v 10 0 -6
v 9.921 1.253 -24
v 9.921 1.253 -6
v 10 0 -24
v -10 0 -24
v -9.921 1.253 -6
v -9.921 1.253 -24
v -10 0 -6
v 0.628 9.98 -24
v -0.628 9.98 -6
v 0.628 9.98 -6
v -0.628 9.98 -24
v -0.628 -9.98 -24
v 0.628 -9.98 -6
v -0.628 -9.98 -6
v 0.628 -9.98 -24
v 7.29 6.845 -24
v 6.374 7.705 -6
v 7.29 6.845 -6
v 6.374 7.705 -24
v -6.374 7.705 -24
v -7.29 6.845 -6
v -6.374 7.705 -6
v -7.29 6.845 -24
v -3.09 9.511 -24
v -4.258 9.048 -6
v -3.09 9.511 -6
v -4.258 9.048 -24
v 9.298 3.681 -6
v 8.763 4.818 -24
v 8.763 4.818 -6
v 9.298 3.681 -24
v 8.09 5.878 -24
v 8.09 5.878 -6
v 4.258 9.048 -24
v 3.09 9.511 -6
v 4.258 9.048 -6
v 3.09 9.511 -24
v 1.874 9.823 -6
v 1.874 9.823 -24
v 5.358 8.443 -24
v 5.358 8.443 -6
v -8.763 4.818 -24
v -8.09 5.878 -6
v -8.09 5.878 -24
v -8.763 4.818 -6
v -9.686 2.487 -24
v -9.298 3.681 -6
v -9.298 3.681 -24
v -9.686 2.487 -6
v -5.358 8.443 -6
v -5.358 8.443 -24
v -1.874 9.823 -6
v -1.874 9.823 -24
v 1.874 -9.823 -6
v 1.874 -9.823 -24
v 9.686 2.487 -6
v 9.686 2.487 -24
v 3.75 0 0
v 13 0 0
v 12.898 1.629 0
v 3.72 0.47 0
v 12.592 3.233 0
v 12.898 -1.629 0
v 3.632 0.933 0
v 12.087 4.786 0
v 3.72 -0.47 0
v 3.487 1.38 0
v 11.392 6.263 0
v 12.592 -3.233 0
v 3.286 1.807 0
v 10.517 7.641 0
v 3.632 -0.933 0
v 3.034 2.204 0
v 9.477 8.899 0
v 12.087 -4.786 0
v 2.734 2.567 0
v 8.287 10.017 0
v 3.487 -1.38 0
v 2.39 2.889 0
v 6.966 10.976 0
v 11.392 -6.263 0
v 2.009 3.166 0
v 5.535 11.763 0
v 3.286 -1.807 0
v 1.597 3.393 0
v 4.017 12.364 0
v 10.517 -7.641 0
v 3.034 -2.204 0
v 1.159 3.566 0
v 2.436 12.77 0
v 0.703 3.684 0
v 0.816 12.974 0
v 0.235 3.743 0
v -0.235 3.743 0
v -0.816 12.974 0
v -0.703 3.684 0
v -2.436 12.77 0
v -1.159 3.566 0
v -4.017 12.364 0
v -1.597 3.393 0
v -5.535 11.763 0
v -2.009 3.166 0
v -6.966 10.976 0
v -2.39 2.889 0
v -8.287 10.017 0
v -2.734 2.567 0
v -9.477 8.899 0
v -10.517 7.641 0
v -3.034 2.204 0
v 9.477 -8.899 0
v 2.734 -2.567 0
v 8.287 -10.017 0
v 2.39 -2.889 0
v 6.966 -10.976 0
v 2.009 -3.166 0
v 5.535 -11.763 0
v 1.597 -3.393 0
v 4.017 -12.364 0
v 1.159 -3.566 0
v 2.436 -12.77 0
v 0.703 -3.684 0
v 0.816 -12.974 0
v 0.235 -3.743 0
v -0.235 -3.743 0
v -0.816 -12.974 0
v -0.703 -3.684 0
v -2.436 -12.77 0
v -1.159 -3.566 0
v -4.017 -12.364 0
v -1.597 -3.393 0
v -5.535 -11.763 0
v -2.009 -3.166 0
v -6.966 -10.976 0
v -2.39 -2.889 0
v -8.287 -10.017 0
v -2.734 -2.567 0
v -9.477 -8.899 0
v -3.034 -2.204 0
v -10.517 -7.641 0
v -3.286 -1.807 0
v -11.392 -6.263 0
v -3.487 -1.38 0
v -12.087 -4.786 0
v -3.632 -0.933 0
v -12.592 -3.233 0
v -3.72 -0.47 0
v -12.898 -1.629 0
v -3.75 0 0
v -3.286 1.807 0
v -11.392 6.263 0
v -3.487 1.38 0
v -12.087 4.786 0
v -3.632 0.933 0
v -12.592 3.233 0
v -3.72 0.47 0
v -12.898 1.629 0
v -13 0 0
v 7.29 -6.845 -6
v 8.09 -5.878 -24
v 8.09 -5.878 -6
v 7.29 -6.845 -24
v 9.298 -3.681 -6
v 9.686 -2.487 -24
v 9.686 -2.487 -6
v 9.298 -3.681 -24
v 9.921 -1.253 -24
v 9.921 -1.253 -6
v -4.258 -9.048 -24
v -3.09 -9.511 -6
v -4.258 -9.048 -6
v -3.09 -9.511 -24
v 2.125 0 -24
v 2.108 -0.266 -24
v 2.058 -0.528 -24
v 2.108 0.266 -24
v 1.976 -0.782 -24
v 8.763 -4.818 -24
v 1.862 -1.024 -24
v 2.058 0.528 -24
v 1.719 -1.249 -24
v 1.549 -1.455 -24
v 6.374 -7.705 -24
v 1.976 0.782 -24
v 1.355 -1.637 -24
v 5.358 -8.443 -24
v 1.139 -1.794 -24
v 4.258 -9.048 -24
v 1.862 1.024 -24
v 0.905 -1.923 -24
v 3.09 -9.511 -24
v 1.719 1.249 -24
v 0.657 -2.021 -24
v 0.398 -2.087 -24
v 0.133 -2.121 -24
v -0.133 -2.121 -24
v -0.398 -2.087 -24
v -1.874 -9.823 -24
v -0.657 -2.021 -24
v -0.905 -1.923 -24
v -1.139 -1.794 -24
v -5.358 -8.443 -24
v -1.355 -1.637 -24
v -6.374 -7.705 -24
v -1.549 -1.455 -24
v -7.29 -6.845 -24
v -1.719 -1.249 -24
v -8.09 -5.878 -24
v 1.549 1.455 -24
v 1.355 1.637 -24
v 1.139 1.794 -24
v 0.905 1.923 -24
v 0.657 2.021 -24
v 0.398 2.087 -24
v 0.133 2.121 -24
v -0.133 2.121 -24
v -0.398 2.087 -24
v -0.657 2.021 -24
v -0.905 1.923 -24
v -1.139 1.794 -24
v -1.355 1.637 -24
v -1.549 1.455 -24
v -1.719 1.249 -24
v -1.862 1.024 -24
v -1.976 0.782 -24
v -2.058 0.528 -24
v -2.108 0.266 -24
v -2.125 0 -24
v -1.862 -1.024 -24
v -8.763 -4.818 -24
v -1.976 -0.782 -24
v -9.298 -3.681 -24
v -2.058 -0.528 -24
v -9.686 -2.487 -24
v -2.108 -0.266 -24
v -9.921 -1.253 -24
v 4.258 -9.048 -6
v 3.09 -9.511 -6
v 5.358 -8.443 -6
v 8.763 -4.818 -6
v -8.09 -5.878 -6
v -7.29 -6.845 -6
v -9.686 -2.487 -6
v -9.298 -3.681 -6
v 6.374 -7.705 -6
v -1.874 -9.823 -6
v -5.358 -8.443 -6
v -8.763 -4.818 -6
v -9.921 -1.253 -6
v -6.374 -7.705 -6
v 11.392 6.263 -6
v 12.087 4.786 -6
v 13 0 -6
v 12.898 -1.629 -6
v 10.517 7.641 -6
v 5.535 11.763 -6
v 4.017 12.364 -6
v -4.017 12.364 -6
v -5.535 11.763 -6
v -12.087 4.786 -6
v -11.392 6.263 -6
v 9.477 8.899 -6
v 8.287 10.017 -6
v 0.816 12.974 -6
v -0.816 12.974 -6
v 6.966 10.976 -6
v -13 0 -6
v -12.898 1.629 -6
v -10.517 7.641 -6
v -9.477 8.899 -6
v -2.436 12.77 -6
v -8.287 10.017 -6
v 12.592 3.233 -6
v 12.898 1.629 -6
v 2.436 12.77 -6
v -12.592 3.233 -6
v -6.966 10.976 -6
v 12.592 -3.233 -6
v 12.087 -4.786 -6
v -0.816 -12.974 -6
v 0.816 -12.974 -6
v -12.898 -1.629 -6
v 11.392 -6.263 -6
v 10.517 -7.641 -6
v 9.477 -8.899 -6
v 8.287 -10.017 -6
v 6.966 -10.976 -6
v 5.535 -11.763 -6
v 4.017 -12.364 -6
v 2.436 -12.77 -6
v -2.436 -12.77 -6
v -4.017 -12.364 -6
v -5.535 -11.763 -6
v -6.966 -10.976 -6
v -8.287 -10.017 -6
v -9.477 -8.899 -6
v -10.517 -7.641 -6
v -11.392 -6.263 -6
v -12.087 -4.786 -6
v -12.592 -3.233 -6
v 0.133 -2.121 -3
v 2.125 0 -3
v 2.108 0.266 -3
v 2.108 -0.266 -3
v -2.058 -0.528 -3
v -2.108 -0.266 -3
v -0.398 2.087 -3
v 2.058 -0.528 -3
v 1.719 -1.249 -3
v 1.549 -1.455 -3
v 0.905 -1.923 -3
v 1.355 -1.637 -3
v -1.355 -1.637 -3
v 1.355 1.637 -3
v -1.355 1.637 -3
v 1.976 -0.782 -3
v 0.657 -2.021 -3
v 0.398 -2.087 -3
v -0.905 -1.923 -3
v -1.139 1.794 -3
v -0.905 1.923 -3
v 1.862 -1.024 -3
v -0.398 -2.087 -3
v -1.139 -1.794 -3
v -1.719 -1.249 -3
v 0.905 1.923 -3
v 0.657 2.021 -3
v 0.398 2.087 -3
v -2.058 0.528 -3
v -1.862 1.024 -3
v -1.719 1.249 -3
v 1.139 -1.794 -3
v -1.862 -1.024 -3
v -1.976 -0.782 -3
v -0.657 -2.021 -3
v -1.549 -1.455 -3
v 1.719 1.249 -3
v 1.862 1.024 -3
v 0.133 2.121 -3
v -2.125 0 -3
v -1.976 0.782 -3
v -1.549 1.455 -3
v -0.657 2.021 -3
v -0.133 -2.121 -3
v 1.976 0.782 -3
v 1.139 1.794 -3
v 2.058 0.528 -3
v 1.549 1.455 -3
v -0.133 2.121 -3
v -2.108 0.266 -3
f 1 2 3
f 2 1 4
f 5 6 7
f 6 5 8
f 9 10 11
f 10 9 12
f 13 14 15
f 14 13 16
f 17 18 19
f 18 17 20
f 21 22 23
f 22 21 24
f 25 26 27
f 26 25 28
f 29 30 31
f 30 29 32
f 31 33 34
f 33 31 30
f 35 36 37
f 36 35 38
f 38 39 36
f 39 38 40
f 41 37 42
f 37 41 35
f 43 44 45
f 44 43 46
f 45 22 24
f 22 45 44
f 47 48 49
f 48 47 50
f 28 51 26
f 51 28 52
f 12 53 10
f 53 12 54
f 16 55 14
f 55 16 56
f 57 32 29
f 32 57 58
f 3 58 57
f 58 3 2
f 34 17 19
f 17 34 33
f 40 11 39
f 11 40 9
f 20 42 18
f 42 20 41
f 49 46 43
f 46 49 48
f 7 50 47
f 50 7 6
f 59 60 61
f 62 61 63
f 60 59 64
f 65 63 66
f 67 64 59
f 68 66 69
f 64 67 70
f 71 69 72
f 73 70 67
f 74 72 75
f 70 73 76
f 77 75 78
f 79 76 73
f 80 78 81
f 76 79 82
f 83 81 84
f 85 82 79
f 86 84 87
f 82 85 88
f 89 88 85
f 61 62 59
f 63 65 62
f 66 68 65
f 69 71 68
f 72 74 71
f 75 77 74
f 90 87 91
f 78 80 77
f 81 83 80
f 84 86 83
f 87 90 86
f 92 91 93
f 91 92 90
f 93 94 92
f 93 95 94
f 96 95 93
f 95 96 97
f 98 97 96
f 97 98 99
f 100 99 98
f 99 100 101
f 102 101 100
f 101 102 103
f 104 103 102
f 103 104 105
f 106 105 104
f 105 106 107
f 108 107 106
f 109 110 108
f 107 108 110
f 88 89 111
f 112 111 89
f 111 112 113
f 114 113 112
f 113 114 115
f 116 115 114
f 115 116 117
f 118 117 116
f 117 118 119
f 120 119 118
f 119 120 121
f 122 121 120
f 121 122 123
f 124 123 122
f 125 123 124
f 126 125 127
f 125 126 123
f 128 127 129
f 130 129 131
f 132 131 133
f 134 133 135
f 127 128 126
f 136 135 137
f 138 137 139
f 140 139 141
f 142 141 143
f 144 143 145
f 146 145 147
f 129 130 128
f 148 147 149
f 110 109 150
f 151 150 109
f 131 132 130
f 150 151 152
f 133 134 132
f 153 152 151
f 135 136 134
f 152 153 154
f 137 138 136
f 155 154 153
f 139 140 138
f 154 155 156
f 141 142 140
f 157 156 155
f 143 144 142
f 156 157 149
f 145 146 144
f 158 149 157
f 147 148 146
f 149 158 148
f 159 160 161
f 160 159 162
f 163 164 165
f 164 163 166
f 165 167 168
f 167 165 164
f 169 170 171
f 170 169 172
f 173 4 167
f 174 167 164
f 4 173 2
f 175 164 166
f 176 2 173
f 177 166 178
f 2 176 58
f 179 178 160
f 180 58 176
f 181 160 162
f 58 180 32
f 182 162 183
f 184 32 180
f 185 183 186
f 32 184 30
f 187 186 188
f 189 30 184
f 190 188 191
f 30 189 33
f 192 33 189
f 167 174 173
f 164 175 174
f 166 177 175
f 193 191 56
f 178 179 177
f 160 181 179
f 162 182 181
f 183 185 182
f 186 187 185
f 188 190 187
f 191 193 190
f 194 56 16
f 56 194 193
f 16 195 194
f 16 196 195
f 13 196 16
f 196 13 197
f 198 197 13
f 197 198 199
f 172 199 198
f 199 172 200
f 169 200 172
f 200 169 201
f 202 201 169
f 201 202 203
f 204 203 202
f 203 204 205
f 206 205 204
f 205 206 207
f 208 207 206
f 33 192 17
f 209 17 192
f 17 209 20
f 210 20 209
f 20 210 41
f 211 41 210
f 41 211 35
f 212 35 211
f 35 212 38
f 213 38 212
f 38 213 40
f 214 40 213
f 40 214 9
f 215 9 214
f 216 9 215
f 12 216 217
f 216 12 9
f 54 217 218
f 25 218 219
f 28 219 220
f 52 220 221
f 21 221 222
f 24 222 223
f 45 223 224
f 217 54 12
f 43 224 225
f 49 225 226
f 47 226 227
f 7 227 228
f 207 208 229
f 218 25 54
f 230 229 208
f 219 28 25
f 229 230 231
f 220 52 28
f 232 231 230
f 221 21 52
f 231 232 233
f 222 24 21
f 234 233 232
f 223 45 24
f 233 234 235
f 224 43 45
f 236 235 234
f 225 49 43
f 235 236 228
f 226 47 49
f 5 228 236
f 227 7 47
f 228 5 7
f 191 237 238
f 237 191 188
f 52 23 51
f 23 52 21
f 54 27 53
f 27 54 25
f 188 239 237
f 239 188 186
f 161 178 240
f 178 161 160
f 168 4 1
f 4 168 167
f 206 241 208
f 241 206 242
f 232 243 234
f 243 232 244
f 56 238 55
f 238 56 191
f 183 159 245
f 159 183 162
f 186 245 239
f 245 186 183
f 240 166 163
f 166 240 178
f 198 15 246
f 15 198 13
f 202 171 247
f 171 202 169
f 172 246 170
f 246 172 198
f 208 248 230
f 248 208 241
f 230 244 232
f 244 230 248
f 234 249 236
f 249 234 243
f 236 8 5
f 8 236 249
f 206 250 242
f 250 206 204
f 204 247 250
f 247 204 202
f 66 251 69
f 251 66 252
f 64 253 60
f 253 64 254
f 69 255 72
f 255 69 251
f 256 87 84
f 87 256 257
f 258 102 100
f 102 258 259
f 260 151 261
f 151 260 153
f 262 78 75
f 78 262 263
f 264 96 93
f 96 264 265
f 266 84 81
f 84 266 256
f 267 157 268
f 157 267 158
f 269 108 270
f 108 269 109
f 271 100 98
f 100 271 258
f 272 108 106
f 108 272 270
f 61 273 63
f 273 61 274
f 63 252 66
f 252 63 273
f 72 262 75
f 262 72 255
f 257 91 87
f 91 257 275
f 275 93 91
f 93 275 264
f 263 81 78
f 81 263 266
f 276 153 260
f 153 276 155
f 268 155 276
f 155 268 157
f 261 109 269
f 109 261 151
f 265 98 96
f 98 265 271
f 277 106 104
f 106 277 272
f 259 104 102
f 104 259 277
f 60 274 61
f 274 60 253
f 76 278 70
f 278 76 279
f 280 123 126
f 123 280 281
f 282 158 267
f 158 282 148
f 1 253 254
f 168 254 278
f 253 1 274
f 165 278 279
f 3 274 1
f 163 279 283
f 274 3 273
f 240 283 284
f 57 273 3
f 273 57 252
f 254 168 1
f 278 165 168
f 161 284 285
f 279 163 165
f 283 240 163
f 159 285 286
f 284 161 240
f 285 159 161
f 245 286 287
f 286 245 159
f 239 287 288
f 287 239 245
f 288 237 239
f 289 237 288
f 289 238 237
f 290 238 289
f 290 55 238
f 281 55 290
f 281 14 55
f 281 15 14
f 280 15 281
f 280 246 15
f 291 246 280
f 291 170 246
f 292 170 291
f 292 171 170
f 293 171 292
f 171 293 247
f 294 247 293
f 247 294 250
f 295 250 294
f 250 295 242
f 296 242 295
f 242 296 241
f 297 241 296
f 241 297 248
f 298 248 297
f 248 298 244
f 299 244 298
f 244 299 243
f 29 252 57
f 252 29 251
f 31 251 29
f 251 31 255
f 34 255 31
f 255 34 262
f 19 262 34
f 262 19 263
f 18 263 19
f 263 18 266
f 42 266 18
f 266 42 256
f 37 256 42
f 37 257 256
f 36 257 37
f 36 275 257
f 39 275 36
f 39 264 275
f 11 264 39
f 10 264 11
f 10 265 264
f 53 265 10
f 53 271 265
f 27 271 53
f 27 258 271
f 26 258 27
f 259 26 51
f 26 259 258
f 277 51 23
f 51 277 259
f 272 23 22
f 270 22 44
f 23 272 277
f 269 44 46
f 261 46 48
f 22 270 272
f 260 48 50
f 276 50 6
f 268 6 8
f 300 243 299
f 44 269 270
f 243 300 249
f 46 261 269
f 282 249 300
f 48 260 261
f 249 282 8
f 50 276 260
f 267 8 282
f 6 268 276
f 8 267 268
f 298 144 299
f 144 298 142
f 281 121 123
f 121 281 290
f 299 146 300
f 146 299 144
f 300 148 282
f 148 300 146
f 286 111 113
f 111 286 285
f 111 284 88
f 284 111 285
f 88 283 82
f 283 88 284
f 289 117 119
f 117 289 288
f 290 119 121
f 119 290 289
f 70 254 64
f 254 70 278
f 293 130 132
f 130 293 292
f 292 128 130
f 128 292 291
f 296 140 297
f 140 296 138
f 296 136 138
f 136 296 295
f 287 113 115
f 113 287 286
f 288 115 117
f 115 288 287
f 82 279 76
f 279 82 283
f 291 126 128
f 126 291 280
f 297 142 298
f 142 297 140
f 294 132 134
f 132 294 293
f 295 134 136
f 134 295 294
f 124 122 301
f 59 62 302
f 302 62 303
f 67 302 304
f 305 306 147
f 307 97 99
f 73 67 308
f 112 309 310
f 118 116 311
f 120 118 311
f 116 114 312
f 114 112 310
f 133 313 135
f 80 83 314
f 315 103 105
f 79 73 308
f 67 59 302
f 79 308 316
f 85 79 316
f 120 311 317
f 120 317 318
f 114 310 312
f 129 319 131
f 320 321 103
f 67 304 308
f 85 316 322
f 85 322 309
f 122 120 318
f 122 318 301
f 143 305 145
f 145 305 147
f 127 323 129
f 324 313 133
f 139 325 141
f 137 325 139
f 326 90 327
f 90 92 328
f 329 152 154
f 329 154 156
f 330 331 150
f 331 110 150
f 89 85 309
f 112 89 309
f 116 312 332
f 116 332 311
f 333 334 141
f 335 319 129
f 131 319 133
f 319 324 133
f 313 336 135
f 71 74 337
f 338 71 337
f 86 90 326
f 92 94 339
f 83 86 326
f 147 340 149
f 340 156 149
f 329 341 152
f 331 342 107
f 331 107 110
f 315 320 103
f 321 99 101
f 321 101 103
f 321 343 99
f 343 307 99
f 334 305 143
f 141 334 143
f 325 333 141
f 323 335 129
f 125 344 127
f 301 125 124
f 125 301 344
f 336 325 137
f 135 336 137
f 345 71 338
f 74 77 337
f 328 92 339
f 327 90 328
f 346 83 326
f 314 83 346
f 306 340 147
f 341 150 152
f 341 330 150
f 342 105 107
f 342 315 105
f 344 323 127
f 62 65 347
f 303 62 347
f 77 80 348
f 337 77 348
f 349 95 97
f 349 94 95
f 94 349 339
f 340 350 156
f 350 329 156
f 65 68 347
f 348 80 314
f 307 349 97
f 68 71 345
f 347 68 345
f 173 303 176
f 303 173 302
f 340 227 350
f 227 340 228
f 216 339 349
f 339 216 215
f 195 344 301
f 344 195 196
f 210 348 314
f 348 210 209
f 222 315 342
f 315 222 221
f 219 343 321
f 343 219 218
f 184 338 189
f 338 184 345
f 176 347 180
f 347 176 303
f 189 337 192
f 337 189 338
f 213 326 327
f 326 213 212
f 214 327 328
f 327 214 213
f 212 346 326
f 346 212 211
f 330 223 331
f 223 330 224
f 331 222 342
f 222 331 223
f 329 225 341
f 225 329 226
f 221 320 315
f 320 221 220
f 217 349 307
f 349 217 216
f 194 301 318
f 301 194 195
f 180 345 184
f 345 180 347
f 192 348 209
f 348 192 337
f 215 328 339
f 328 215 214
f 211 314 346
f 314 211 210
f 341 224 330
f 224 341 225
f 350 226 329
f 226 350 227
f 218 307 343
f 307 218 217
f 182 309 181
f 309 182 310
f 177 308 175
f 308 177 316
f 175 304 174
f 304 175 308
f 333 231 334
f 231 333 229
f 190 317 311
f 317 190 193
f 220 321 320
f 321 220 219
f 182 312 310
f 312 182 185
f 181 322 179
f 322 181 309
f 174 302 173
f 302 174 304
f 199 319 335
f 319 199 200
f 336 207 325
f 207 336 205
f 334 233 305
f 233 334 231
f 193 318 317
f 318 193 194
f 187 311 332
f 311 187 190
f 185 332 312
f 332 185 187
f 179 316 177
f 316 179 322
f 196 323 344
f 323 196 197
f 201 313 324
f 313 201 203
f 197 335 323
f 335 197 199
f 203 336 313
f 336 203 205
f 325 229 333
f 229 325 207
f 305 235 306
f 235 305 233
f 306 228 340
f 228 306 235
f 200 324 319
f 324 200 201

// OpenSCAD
$fn = 50;


difference() {
	union() {
		translate(v = [0, 0, -24.0000000000]) {
			cylinder(h = 24, r = 10.0000000000);
		}
		translate(v = [0, 0, -6.0000000000]) {
			cylinder(h = 6, r = 13.0000000000);
		}
	}
	union() {
		translate(v = [0, 0, 0]) {
			rotate(a = [0, 0, 0]) {
				difference() {
					union() {
						#translate(v = [0, 0, -24.0000000000]) {
							cylinder(h = 24, r = 2.0000000000);
						}
						#translate(v = [0, 0, -3]) {
							cylinder(h = 3, r = 10.0000000000, r1 = 2.1250000000, r2 = 3.7500000000);
						}
						#translate(v = [0, 0, -24.0000000000]) {
							cylinder(h = 24, r = 2.1250000000);
						}
						#translate(v = [0, 0, -24.0000000000]) {
							cylinder(h = 24, r = 2.0000000000);
						}
					}
					union();
				}
			}
		}
	}
}
